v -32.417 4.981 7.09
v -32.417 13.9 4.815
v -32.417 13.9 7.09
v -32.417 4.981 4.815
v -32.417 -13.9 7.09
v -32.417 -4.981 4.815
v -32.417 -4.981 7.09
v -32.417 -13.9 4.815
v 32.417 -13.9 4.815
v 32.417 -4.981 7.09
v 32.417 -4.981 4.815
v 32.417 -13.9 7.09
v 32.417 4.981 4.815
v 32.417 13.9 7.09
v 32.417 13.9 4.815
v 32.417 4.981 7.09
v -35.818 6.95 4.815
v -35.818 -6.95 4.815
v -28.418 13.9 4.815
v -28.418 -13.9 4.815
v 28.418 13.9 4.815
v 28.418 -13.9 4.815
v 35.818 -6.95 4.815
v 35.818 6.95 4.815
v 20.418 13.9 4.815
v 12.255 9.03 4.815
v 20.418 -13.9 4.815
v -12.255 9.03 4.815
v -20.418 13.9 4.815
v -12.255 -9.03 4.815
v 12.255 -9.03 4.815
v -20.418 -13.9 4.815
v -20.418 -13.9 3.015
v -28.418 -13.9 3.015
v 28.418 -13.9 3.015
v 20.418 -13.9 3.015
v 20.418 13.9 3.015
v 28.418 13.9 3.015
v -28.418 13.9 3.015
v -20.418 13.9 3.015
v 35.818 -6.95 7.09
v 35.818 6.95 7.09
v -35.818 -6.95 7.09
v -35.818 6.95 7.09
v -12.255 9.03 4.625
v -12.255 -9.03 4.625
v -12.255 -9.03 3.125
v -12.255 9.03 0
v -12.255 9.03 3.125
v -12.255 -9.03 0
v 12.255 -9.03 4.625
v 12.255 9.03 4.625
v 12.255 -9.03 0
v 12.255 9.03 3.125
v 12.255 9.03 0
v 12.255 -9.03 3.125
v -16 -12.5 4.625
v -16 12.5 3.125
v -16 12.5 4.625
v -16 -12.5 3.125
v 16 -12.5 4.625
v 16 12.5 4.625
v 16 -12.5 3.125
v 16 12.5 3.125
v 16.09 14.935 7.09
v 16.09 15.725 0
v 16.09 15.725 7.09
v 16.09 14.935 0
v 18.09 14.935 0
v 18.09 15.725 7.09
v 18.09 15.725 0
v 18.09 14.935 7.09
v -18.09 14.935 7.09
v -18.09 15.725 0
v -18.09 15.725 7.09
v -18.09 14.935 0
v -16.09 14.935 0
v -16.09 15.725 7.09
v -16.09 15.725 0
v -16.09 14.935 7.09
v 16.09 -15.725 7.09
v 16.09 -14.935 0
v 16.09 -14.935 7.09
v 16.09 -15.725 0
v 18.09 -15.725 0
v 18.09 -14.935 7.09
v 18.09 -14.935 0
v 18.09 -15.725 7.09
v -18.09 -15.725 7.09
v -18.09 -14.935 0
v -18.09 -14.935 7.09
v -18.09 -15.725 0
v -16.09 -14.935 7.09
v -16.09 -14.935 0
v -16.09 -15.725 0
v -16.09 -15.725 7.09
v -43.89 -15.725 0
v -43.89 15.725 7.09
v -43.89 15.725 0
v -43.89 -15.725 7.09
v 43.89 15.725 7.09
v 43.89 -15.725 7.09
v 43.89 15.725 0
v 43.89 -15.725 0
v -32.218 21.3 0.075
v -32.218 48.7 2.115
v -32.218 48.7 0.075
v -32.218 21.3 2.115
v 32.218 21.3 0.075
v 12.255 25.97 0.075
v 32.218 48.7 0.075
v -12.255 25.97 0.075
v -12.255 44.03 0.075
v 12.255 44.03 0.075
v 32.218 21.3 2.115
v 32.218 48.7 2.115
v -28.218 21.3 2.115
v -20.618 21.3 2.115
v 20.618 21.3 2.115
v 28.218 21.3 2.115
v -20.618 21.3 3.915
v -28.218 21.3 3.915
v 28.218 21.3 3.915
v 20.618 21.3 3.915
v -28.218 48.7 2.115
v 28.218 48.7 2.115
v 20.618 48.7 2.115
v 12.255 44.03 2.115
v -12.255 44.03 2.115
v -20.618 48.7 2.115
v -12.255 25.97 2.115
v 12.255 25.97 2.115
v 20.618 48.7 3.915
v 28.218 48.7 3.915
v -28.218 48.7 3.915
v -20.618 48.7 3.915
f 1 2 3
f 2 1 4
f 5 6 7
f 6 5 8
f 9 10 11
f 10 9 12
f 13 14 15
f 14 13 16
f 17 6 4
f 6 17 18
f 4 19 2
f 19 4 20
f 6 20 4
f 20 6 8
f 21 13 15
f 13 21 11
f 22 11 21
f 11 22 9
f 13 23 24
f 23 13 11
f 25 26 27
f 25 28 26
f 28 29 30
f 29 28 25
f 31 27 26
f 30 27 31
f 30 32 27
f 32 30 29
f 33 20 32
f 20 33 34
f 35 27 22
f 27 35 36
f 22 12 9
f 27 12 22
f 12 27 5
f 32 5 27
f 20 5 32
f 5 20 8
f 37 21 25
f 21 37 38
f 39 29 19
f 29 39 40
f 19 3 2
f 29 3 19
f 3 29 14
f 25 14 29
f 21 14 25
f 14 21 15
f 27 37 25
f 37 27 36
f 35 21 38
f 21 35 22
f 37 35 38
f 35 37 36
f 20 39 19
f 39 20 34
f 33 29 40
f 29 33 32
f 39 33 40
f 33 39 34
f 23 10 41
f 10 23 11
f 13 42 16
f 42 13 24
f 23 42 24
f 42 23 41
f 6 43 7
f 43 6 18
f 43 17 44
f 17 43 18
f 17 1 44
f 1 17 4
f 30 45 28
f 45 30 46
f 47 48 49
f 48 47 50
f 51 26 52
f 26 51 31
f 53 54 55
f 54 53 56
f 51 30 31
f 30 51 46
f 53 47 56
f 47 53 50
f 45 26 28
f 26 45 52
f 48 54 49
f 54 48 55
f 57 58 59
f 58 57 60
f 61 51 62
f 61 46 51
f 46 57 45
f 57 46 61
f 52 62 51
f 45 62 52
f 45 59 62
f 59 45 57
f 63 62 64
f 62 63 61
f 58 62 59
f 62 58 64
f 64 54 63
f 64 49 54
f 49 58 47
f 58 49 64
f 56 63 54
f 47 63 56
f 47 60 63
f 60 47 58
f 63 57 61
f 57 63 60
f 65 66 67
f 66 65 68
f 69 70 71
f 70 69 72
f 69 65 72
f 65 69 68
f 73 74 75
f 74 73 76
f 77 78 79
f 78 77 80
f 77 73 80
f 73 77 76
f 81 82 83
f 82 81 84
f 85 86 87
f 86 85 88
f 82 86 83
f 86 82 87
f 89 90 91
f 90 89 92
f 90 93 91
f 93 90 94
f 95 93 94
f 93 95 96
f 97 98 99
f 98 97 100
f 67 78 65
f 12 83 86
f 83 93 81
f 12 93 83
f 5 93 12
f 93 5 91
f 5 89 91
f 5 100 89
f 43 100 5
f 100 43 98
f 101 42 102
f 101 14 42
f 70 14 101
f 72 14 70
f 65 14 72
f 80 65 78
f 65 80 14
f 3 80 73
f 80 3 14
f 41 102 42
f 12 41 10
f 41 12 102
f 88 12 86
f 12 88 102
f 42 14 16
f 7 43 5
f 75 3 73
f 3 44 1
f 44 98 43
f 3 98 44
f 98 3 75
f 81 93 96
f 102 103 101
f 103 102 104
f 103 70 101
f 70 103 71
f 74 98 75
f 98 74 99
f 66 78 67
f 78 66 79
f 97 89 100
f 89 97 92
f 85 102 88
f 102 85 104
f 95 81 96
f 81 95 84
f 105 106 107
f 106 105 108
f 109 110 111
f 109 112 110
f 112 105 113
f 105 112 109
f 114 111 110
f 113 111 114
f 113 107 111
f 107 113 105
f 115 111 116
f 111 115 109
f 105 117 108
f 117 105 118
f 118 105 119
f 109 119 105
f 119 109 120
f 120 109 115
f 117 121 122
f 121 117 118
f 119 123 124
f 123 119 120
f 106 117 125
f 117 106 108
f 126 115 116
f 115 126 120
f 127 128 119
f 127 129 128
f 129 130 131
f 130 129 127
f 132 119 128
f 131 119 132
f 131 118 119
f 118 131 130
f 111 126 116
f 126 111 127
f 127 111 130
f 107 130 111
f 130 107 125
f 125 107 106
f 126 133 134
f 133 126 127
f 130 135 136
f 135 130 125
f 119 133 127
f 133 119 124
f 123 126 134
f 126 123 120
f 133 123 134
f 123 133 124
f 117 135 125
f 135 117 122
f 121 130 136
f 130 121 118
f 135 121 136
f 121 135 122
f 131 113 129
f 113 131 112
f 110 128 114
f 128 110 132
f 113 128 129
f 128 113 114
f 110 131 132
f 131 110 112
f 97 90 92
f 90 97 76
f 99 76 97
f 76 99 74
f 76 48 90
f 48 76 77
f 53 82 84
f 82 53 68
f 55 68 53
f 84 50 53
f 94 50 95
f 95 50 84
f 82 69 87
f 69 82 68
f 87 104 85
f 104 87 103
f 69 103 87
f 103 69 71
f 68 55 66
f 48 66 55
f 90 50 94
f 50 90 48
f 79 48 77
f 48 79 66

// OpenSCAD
//Olympus Scope Filter Slider
// Created by Juan Angueyra (angueyra@uw.edu)
// March 2016

// Variables
//Slider itself
sx=87.78;
sy=31.85-.4; //original = 31.85
sz=7.44; //original = 7.44
//notch
nx=2;//original = 1.7
ny=0.8;//original = 0.5.
ndelta=25.8+nx/2;
//Filter hole
fhr=28.80/2; //hole on fake holder is 28.80
hr=25.8/2; 
fr=23.5/2; //real filters are 25.4 mm * 1.58 mm (Edmund optics, 1 inch?)
fz=2; 
ffloorz=2;
//Filter Brigmann is 30 x 22 x 1
fsqx=30+2;
fsqy=22+3;
fsqz=1.5;



 // main call
3Dprintflag=1;
osfs_tr = 3Dprintflag ? [0,0,sz/2-0.25/2-0.1] : [0,0,0];
osfs_rot = 3Dprintflag ? [0,0,0] : [0,0,0];

cout_tr = 3Dprintflag ? [0,35,sz/2-.085] : [0,0,0];
cout_rot = 3Dprintflag ? [180,0,0] : [0,0,0];

difference(){
union(){
	color([255/255,255/255,255/255],1){translate(osfs_tr){rotate(osfs_rot){osfs();}}}
	translate(cout_tr){rotate(cout_rot){color([200/255,0/255,0/255],1){cutout2(0.4);}}}
	// translate(osfs_tr){rotate(osfs_rot){filter();}}
}

translate([0,0,-1]) {cube(size=[100,100,2],center=true);}
}


// translate(cout_tr){rotate(cout_rot){color([0/255,0/255,0/255],.4){filter();}}}
// filter();

// translate(osfs_tr){rotate(osfs_rot){holeNnotch();}}

// modules


module osfs() {
	difference() {
		cube(size=[sx,sy,sz-.25],center=true);
		holeNnotch();
		cutout(0);
	}
}

module holeNnotch() {
	union() {
		// outer hole (creates lip, is as big as real filter)
		// translate([0,0,ffloorz+.75]) {cylinder(r=hr,h=sz,center=true);}
		translate([0,0,ffloorz+.75]) {cube(size=[hr*1.9,hr*1.4,sz*2],center=true);}
		//center hole (exposed filter)
		translate([0,0,.1]) {filter();}
		// outer notches
		notch();
		mirror([1,0,0]) {notch();}
		mirror([0,1,0]) {notch();}
		mirror([0,1,0]) {mirror([1,0,0]) {notch();}}
		//translate([sx/2-ndelta,-(sy/2-ny/2+.01),0]){cube(size=[nx,ny,sz*2],center=true);}
	}
}

module notch() {
	translate([sx/2-ndelta,(sy/2-ny/2+.01),0]) {cube(size=[nx,ny,sz*2],center=true);} 
}

module cutout(ctol) {
	coutx=sx*3/4-1;
	couty=fhr*2-1;
	coutz=sz-fz-ffloorz-1;
	pegx=8;
	pegz=2;
	
	//trapz_peg
	tpb=couty/2;
	tpt=tpb/2;
	tph=6;
	tpz=coutz;
	
	translate([coutx/2+.4,0,ctol+.1]) {trapezoid(tpb-ctol,tpt-ctol,tph-ctol/2,tpz-ctol);}
	mirror([1,0,0]) {translate([coutx/2+.4,0,ctol+.1]) {trapezoid(tpb-ctol,tpt-ctol,tph-ctol/2,tpz-ctol);}}
	difference() {
		union(){
				translate([0,0,coutz+.1]) {cube(size=[coutx-ctol,couty-ctol,coutz-ctol],center=true);}
				translate([coutx/2-pegx,0,coutz+.3-pegz]) {cube(size=[pegx-ctol,couty-ctol,coutz-ctol],center=true);}
				translate([-(coutx/2-pegx),0,coutz+.3-pegz]) {cube(size=[pegx-ctol,couty-ctol,coutz-ctol],center=true);}
			}
			// translate([0,0,0]) {cylinder(r=fr,h=sz*2,center=true);}
			// filter();
	}
}

module cutout2(ctol) {
	coutx=sx*3/4-1;
	couty=fhr*2-1;
	coutz=sz-fz-ffloorz-1;
	pegx=8;
	pegz=2;
	
	//trapz_peg
	tpb=couty/2;
	tpt=tpb/2;
	tph=6;
	tpz=coutz;
	
//	translate([coutx/2+.4,0,ctol+.1]){trapezoid(tpb-ctol,tpt-ctol,tph-ctol/2,tpz-ctol);}
//	mirror([1,0,0]){translate([coutx/2+.4,0,ctol+.1]){trapezoid(tpb-ctol,tpt-ctol,tph-ctol/2,tpz-ctol);}}
	difference() {
		union(){
				translate([0,0,coutz+.1]) {cube(size=[coutx-ctol,couty-ctol,coutz-ctol],center=true);}
				translate([coutx/2-pegx,0,coutz+.3-pegz]) {cube(size=[pegx-ctol,couty-ctol,coutz-ctol],center=true);}
				translate([-(coutx/2-pegx),0,coutz+.3-pegz]) {cube(size=[pegx-ctol,couty-ctol,coutz-ctol],center=true);}
			}
			translate([0,0,ffloorz+.75]) {cube(size=[hr*1.9,hr*1.4,sz*2],center=true);}
	}
}

module filter() {
	color([0/255,0/255,0/255],1){
		translate([0,0,-sz/2+fz/2+ffloorz+1]) {cube(size=[fsqx,fsqy,fsqz],center=true);}}
}

module filterRound() {
	color([0/255,0/255,0/255],1){
		translate([0,0,-sz/2+fz/2+ffloorz+1]) {cylinder(r=25.4/2,h=fz,center=true);}}
}

module trapezoid(width_base, width_top,height,thickness) {
	translate([height/2,-width_base/2,thickness/2]) {rotate([0,0,90]) {
  		linear_extrude(height = thickness) polygon(points=[[0,0],[width_base,0],[width_base-(width_base-width_top)/2,height],[(width_base-width_top)/2,height]], paths=[[0,1,2,3]]);  
	}}
}
